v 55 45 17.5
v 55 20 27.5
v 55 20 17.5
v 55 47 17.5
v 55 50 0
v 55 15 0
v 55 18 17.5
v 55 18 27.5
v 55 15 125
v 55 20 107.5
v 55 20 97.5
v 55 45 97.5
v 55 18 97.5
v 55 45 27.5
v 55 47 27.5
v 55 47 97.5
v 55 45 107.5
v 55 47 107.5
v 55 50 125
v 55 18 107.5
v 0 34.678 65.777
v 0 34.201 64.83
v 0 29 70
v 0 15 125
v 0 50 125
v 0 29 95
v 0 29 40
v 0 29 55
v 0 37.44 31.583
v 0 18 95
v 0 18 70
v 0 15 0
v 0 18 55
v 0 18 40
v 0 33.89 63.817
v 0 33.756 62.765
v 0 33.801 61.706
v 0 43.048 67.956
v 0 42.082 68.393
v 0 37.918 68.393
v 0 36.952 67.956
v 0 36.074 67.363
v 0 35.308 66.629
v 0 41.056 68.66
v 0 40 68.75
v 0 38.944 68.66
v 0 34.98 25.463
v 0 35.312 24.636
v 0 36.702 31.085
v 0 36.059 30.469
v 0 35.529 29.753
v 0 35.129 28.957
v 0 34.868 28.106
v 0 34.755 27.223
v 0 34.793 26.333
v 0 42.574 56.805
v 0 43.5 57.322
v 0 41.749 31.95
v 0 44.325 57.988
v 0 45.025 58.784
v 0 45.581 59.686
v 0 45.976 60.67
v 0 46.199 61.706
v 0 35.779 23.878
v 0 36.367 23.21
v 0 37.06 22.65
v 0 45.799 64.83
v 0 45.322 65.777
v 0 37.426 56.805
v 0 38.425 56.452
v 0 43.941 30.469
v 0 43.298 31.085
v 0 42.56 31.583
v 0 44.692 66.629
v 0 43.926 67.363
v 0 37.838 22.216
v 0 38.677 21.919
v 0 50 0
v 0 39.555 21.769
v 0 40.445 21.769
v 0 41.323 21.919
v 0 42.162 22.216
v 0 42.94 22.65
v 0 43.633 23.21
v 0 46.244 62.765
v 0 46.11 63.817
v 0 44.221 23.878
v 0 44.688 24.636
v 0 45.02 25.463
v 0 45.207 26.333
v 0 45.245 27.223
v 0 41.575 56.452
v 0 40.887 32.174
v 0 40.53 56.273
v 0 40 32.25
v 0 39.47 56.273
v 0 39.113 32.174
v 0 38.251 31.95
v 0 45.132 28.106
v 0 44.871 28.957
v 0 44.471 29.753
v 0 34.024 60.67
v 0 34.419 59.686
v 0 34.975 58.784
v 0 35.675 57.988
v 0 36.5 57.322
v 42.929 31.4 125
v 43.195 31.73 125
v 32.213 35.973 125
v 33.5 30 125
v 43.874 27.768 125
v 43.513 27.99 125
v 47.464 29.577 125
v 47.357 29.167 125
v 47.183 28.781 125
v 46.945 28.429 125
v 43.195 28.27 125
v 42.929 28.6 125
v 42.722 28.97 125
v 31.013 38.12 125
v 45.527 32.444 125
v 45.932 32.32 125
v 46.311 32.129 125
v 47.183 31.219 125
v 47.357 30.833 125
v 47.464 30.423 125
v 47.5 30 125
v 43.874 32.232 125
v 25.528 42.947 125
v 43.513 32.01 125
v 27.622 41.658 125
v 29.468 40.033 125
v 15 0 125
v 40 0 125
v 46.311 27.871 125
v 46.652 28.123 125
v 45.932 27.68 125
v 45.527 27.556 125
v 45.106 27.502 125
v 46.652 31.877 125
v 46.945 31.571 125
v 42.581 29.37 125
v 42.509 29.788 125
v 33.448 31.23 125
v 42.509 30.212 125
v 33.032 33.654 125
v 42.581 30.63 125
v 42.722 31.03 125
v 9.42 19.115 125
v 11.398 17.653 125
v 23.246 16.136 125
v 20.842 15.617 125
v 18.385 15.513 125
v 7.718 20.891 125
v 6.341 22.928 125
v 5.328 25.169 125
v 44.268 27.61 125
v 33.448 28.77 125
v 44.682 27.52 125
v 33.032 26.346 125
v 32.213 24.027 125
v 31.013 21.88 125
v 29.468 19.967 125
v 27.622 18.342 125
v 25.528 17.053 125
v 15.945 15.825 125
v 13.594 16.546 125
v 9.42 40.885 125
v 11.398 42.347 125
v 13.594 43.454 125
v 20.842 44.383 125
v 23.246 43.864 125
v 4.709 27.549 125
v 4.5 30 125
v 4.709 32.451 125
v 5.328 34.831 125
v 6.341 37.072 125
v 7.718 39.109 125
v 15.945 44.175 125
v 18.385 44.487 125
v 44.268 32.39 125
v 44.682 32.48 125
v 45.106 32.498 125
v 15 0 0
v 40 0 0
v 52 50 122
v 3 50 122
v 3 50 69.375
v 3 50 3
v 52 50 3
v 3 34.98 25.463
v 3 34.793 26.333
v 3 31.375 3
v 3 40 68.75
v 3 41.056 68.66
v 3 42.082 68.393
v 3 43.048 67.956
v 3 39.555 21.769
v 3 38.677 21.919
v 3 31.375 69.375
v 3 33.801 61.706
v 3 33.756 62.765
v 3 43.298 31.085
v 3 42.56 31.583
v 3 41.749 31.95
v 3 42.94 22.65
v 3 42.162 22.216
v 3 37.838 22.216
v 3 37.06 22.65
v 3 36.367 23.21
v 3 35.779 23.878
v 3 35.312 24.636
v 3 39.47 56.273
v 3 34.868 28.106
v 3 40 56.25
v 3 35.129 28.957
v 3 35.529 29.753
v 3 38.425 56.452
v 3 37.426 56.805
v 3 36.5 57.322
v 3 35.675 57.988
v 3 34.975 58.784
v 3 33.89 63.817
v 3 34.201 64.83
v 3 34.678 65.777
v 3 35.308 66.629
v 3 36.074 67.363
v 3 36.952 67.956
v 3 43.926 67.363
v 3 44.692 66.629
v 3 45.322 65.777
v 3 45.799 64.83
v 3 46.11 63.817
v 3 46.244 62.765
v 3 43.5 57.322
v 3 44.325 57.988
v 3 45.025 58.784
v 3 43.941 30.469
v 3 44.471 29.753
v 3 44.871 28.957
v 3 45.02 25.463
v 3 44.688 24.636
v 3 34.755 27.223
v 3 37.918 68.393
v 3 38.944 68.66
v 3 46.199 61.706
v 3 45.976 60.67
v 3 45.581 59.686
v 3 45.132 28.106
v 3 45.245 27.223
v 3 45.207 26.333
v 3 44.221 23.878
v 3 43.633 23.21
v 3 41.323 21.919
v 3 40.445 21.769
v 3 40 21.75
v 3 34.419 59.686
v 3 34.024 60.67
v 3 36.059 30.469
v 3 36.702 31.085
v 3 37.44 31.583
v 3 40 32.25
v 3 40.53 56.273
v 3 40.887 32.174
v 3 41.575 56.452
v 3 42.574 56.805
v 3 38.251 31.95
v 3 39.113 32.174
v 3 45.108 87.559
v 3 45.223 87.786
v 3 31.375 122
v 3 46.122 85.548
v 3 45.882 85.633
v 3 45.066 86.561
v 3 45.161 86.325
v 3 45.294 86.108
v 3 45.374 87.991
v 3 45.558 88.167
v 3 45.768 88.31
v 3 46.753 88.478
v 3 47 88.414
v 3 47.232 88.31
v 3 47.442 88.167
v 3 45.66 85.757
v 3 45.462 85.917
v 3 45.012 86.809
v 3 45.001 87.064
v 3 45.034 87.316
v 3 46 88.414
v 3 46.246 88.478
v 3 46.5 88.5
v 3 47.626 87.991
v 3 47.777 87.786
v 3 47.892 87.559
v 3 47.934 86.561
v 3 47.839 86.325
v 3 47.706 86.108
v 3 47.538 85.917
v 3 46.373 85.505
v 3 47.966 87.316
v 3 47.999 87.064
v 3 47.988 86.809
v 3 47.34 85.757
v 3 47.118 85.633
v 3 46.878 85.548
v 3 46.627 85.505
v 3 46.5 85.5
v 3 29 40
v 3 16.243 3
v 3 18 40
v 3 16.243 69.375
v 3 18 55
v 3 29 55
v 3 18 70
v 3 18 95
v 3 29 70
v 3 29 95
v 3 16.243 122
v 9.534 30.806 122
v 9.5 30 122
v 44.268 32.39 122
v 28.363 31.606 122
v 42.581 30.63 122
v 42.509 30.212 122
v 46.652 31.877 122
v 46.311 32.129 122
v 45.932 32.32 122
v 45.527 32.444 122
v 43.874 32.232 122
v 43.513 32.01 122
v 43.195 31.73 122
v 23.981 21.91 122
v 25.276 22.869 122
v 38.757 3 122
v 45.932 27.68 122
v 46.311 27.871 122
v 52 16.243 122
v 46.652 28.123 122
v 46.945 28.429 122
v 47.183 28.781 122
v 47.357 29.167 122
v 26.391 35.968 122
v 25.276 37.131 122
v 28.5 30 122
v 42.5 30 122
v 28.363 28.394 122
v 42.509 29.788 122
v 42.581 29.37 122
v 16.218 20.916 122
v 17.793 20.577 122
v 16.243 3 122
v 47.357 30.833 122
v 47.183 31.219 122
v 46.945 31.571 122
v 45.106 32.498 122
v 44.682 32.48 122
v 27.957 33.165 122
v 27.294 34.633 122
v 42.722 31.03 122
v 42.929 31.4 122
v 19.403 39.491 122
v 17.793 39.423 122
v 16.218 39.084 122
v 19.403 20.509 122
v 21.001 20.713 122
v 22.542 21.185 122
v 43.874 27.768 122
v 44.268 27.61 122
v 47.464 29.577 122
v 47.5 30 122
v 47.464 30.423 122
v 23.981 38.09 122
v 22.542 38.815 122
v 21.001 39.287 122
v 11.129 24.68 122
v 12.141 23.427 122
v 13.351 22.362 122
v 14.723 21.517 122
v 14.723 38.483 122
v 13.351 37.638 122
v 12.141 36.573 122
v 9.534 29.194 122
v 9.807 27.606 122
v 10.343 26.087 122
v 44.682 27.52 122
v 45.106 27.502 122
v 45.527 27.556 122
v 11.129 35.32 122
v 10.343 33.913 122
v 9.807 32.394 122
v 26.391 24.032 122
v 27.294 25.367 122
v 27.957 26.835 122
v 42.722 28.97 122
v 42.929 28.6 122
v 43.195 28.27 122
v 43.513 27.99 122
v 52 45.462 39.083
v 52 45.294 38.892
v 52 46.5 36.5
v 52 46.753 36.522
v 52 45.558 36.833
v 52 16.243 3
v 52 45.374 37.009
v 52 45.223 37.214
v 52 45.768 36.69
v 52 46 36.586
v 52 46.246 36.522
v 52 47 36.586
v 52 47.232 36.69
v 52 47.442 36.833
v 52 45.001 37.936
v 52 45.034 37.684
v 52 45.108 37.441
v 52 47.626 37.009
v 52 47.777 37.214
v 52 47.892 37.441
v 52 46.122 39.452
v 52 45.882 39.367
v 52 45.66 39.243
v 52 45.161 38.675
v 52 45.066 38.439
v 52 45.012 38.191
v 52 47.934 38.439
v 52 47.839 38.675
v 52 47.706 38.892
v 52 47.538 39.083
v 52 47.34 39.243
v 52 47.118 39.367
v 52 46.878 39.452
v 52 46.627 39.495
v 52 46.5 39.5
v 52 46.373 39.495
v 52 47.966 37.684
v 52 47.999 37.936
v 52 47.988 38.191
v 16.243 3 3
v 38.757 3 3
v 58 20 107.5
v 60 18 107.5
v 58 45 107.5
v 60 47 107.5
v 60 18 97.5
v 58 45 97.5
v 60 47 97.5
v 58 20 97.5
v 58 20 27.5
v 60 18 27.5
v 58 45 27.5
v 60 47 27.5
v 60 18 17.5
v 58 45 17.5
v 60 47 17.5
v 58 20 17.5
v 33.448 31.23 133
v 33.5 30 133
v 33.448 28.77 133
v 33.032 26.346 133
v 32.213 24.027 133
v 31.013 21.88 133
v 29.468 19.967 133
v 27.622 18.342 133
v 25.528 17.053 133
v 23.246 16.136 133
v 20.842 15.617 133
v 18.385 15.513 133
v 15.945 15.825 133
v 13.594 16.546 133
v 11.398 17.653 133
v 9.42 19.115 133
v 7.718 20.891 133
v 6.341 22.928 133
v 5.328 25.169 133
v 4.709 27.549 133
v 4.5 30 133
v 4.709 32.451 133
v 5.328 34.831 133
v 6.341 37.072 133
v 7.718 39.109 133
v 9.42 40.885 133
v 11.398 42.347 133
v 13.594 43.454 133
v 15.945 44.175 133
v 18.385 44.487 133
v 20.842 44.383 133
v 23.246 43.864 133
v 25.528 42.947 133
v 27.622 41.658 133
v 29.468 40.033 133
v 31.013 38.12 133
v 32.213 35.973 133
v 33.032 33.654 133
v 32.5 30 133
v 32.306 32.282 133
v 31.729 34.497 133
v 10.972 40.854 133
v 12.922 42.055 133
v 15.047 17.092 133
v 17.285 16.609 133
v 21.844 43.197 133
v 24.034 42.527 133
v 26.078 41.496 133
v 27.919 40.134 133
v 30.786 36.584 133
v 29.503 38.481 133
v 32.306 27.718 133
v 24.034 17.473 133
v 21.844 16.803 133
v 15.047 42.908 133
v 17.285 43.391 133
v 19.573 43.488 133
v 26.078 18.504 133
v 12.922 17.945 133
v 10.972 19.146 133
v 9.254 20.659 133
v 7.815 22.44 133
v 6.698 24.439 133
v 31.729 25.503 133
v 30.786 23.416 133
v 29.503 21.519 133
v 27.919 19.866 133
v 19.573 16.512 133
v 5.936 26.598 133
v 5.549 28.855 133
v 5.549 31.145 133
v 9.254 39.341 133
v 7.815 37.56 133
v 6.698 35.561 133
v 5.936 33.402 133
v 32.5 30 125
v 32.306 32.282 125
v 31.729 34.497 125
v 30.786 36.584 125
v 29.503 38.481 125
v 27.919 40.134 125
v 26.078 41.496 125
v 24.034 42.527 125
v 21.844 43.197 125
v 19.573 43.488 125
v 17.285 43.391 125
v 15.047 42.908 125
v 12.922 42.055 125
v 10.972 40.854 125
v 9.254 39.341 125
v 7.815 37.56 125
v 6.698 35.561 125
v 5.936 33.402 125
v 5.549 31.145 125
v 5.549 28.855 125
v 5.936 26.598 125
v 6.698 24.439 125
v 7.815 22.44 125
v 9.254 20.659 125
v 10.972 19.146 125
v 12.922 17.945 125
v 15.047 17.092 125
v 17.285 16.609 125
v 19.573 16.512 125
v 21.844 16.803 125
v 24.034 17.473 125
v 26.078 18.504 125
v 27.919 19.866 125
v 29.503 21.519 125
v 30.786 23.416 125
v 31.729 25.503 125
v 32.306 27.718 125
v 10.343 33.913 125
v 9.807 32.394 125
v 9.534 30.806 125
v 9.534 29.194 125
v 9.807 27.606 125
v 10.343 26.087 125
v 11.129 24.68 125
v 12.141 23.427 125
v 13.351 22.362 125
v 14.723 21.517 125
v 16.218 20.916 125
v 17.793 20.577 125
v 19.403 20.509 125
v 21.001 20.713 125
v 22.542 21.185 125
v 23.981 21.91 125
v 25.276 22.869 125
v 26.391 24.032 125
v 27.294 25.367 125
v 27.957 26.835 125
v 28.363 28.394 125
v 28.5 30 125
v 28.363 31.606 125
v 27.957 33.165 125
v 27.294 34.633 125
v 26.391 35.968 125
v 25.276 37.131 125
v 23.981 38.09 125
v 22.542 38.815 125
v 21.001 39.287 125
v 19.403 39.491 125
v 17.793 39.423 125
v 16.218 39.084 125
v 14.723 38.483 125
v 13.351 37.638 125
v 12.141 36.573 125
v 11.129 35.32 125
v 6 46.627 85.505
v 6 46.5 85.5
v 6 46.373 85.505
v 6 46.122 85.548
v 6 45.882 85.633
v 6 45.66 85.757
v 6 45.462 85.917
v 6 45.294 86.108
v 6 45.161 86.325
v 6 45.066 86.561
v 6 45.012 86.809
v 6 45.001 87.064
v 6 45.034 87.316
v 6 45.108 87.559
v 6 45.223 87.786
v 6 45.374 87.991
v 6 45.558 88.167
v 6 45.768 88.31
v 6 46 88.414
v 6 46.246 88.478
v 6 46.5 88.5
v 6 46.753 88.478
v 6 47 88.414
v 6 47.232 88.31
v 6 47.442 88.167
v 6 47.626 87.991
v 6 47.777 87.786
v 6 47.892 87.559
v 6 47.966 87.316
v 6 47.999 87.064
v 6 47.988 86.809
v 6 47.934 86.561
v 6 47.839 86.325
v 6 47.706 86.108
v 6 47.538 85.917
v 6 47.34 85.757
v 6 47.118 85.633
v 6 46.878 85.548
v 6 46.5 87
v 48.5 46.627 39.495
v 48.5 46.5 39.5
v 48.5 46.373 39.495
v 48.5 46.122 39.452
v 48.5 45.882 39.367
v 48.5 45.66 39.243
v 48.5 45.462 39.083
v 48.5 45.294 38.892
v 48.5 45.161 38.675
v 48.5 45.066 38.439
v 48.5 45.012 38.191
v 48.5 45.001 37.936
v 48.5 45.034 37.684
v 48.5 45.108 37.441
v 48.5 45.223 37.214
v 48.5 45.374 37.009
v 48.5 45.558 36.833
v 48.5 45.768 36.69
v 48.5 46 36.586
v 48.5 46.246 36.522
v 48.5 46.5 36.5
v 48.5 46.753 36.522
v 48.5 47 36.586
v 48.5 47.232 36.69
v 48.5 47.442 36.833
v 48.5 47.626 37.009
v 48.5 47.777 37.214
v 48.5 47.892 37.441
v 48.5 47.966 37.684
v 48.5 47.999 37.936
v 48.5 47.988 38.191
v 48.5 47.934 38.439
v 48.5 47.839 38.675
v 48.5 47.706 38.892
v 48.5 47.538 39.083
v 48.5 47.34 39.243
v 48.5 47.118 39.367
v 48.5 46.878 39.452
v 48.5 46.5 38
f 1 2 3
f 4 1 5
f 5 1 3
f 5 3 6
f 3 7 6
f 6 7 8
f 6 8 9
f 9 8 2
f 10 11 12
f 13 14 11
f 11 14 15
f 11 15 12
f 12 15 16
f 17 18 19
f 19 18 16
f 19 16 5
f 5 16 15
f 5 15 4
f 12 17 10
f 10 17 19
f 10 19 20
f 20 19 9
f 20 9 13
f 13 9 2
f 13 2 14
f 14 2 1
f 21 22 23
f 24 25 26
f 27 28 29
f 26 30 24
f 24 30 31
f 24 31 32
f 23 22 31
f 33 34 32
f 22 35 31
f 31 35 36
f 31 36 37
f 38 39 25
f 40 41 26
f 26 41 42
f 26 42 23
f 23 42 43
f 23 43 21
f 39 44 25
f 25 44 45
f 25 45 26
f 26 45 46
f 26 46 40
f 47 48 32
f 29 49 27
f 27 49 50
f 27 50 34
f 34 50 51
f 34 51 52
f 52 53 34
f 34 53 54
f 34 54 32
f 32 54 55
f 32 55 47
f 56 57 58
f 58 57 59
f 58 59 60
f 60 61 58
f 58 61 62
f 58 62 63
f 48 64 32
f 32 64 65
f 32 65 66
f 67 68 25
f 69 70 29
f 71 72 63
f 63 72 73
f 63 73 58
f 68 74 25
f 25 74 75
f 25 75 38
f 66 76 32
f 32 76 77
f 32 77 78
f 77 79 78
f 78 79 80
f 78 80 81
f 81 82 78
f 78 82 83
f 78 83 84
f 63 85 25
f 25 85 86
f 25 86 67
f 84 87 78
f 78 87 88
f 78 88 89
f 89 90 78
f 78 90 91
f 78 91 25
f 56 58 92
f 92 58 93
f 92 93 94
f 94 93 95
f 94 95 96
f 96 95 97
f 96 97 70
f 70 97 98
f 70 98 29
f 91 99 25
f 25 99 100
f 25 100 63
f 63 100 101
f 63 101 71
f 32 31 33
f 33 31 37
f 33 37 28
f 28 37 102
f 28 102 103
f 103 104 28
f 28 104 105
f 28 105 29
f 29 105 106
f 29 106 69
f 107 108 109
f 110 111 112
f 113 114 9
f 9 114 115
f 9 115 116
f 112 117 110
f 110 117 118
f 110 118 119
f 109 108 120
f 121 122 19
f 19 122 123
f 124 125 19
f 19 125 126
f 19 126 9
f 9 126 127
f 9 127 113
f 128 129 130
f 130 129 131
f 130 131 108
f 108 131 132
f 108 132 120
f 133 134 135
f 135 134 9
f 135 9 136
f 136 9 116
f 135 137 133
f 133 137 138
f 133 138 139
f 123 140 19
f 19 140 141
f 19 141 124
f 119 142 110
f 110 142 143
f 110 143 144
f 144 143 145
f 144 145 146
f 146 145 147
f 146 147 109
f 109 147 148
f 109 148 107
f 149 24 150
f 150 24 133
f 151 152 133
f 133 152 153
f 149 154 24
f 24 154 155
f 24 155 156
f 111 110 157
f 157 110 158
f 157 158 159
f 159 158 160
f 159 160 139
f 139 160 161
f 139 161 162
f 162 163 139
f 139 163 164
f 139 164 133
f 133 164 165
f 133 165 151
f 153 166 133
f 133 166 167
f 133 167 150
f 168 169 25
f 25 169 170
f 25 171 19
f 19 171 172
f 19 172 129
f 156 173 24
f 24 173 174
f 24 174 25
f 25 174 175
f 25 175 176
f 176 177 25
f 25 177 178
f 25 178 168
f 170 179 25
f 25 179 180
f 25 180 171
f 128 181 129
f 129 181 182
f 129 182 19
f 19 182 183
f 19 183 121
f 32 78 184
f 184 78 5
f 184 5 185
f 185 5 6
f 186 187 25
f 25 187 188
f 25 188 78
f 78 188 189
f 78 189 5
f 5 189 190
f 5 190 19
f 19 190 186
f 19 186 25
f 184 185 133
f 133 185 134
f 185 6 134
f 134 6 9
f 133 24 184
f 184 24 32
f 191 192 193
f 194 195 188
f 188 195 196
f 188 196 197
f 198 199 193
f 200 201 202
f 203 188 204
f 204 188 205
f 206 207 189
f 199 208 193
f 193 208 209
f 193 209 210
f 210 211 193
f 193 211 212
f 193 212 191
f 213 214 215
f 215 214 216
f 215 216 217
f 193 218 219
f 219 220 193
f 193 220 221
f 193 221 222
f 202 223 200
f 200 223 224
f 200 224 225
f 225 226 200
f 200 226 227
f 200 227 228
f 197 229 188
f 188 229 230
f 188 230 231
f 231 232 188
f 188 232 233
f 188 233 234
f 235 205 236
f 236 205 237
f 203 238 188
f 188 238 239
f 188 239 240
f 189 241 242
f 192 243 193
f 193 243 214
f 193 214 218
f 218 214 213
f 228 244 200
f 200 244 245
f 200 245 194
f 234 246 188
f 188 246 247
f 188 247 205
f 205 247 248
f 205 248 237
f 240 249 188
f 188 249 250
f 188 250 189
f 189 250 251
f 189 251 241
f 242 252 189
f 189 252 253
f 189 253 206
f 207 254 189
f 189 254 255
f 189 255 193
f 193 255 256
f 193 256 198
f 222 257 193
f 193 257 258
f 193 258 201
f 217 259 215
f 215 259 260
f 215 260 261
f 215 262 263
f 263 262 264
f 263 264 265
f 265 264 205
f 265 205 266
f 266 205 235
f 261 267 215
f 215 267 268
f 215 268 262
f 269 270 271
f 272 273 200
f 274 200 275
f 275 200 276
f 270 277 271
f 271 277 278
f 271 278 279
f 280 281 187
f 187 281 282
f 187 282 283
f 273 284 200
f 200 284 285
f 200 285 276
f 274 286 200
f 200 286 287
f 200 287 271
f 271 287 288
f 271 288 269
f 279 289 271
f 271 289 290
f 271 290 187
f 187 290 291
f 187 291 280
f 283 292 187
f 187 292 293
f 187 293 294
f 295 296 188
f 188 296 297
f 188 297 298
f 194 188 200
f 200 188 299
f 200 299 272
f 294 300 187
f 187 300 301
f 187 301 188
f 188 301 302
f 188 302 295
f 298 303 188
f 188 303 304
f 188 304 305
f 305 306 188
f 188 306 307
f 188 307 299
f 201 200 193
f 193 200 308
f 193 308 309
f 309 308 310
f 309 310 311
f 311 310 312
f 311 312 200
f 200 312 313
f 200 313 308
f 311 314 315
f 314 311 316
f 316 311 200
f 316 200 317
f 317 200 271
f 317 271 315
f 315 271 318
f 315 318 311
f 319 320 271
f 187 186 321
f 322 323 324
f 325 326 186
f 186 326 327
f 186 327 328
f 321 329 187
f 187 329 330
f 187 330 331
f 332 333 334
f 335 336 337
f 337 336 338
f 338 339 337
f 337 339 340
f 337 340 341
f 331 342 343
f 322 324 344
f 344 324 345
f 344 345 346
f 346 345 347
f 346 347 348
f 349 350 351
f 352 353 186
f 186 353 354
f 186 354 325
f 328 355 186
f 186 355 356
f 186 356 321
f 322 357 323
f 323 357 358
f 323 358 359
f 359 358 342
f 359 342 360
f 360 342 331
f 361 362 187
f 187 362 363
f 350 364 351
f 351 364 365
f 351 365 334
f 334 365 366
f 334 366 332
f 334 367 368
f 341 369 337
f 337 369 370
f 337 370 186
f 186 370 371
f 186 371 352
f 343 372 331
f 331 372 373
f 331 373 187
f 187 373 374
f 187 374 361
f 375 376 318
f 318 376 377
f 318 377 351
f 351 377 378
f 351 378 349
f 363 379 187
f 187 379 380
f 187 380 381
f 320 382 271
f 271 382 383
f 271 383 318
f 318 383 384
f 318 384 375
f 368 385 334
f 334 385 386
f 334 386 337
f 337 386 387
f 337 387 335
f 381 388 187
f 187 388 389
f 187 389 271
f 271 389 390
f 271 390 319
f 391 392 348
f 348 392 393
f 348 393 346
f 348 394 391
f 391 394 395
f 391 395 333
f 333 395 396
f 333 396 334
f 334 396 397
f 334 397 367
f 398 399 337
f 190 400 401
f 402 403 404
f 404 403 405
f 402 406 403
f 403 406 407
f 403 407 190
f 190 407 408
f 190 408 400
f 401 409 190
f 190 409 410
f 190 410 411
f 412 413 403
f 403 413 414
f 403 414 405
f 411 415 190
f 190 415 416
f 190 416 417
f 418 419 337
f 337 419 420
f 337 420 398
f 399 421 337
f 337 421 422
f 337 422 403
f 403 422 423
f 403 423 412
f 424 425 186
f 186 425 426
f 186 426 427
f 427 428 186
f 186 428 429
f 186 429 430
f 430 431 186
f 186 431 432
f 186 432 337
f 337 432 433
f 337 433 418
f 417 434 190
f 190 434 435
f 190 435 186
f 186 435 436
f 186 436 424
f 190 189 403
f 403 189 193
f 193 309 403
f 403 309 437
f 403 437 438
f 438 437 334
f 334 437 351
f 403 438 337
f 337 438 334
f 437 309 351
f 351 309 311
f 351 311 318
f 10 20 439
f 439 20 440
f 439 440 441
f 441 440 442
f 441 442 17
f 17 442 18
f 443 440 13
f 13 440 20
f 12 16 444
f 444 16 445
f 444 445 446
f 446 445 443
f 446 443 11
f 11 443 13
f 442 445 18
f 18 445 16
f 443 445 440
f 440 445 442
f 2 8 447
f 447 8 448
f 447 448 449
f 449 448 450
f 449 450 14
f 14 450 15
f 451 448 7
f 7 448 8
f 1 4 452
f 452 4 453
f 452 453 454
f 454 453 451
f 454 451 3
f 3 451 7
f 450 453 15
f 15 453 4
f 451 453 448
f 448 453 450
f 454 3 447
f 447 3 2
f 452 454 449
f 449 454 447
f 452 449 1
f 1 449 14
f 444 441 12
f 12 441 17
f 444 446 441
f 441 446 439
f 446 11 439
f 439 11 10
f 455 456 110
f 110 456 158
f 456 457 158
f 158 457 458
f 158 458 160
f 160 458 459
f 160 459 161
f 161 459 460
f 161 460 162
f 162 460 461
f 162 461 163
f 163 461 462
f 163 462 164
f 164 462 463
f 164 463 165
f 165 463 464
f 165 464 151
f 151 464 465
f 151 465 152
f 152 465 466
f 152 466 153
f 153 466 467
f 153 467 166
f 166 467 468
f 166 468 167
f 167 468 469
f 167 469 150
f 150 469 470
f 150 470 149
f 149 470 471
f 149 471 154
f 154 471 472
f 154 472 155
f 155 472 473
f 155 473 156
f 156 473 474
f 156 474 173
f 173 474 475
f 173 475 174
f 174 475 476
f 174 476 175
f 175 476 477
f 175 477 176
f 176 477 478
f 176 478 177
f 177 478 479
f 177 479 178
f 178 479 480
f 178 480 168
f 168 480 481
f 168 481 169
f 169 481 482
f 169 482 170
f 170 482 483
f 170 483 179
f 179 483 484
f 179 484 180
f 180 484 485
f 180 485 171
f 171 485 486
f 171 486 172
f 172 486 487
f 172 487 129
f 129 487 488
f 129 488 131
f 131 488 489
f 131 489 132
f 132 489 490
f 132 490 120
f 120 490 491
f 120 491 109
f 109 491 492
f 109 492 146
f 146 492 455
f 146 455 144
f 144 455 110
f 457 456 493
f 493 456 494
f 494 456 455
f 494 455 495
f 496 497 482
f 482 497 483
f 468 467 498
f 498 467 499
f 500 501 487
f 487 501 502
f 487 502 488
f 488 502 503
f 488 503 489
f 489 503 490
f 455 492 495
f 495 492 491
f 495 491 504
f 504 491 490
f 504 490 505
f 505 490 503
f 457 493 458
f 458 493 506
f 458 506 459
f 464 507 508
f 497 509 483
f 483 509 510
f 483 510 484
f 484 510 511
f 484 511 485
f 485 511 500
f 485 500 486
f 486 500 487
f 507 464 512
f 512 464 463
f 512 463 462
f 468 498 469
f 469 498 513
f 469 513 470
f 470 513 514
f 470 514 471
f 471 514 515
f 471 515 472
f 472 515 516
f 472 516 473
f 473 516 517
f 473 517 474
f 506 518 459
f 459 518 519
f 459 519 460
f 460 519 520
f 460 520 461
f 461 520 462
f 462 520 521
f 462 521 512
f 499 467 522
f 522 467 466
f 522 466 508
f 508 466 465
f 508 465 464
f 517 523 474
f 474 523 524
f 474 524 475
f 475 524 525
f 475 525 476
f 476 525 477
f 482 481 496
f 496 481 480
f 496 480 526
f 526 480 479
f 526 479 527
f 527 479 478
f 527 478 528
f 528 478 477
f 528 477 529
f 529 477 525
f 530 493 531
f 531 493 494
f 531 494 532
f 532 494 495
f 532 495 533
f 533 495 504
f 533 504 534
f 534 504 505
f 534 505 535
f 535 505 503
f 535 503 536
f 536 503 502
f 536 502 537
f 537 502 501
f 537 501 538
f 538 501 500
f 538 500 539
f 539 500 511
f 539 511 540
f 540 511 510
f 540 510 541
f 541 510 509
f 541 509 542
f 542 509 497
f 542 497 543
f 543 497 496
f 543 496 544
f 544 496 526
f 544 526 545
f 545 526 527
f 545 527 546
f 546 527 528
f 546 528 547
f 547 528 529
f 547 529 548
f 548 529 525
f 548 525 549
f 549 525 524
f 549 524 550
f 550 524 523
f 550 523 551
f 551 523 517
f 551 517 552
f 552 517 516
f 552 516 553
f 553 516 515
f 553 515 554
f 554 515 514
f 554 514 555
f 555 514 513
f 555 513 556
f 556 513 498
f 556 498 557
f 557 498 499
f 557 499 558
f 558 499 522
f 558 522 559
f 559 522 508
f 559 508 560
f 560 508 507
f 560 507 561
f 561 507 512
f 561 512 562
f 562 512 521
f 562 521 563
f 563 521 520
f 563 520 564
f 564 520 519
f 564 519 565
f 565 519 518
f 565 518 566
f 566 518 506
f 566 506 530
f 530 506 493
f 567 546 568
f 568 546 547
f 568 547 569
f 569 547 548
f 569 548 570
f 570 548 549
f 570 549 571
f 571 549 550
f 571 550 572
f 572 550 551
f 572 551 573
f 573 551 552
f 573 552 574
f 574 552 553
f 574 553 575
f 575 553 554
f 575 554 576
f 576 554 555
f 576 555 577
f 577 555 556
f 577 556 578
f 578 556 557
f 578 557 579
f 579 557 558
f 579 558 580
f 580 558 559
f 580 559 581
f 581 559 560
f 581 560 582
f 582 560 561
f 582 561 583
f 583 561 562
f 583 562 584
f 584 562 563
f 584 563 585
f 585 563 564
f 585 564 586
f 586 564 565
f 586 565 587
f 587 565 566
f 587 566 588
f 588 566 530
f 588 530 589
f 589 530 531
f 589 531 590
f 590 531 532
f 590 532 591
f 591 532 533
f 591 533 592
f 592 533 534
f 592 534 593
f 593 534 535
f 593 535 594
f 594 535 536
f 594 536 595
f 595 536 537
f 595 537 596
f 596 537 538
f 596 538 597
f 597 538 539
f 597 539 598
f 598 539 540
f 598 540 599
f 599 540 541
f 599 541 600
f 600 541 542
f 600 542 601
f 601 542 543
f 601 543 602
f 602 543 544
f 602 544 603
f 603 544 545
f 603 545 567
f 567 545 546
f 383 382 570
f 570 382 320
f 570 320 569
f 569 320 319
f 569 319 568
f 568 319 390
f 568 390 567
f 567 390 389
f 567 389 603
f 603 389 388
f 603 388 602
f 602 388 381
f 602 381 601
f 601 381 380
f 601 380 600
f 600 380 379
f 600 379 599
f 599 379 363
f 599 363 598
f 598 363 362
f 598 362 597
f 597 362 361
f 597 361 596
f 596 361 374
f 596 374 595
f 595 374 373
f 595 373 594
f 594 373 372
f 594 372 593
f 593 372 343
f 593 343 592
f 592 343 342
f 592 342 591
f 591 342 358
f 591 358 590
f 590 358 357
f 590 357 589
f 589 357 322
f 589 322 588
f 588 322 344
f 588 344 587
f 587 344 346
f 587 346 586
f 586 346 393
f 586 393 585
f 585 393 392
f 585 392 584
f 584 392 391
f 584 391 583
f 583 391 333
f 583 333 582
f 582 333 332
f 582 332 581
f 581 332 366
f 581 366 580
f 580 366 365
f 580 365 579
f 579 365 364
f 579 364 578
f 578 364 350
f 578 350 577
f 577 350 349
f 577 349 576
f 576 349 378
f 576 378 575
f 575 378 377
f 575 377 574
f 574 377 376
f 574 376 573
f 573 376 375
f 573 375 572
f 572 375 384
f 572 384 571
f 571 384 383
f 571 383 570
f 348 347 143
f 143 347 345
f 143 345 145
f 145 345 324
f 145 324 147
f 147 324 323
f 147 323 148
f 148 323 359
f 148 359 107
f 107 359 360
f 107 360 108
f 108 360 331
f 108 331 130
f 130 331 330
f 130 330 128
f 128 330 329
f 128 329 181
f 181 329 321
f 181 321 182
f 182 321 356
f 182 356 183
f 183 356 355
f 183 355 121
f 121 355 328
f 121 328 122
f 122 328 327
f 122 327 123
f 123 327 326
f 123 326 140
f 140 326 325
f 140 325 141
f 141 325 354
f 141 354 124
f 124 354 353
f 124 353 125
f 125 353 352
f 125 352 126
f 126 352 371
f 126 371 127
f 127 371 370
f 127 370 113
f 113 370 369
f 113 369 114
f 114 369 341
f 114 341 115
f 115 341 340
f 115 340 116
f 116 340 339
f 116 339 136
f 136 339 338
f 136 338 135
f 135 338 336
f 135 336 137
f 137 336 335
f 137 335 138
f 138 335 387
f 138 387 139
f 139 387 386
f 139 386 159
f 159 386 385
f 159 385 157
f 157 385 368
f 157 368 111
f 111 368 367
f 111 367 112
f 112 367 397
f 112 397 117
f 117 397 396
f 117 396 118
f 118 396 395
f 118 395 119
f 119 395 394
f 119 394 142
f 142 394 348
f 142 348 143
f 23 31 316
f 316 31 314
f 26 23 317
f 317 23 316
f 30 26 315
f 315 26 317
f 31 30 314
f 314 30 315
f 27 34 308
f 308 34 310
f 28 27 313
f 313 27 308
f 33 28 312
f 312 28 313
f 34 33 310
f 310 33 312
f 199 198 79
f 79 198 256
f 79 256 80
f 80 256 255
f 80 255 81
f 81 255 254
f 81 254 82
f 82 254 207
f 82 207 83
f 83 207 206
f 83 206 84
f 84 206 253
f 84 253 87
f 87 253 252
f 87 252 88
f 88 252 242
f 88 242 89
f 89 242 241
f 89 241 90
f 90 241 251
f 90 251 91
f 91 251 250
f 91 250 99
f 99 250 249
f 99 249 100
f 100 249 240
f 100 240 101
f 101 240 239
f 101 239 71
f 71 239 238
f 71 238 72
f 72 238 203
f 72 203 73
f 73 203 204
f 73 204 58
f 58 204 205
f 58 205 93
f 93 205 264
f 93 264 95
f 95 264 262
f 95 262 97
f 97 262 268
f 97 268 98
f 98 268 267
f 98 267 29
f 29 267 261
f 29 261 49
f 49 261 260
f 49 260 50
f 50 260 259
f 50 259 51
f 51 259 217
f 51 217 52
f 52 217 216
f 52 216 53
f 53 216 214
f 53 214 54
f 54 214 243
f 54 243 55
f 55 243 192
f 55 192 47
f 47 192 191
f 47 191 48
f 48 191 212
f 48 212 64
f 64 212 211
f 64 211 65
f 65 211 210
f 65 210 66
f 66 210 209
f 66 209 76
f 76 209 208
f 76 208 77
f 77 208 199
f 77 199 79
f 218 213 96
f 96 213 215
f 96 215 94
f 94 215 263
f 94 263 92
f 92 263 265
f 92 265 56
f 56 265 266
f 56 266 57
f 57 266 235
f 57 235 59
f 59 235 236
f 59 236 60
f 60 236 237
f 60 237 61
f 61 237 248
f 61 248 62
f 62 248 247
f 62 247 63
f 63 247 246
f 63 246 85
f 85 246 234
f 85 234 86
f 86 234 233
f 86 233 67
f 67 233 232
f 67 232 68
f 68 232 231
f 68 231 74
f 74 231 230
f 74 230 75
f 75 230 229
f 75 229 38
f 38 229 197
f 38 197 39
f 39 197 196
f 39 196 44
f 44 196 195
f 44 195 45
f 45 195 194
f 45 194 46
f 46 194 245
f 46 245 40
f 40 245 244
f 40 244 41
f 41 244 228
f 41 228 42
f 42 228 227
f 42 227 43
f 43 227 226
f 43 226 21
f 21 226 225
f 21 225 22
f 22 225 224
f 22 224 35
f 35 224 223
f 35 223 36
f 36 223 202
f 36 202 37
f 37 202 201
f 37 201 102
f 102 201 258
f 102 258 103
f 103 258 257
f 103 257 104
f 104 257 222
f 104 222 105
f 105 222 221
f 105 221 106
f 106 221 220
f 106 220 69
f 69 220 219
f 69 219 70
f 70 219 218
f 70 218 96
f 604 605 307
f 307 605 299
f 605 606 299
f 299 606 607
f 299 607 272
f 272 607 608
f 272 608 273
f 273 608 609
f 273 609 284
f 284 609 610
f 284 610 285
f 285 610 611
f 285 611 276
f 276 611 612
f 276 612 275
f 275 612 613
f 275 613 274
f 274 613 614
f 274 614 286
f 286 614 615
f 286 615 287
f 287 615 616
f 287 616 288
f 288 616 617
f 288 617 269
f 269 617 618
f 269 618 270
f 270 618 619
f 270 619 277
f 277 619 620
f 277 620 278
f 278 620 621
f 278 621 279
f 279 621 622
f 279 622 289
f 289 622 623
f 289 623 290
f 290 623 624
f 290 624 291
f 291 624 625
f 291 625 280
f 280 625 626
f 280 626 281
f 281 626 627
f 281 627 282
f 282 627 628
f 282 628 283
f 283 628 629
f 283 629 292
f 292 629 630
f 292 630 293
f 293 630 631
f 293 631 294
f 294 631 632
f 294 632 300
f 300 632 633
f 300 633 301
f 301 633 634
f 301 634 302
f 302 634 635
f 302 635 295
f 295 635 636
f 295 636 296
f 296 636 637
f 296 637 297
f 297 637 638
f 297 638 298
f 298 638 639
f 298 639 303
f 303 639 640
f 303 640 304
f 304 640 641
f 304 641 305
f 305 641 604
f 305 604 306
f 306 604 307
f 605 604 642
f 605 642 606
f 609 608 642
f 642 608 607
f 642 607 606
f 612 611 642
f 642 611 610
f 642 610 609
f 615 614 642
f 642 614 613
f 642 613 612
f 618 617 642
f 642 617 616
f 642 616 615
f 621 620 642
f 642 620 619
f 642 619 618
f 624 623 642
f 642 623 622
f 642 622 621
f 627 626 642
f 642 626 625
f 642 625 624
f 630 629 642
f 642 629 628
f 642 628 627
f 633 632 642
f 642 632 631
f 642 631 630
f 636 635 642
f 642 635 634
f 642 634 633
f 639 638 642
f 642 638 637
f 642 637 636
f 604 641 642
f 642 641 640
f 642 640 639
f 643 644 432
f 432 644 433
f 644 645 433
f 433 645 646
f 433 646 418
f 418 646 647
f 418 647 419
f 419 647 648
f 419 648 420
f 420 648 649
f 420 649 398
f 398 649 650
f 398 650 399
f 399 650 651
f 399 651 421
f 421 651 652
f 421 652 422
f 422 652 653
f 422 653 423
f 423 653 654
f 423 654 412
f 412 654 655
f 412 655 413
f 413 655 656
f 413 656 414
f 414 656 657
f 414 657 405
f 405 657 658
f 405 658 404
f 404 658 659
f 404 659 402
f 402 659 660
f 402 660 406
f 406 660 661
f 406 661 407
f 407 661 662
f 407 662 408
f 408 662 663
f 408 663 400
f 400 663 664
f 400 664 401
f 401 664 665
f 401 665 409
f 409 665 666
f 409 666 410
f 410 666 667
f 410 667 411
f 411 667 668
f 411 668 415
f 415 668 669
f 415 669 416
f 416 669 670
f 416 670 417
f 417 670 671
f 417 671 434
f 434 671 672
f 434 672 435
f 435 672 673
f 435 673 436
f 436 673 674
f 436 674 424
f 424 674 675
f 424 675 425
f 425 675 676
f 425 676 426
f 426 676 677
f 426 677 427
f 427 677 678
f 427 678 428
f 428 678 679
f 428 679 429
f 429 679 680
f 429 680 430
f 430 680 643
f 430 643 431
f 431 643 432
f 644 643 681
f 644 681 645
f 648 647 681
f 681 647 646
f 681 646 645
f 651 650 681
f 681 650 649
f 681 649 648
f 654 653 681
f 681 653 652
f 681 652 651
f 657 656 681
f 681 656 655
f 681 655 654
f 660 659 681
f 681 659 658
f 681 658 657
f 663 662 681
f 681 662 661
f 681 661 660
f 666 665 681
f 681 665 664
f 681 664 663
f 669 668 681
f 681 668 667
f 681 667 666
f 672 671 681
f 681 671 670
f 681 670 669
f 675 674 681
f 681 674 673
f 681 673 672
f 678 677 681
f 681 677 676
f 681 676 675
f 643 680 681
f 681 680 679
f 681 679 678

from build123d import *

# Parameters (mm, degrees)
SKETCH1_W               = 55
SKETCH1_H               = 125
BOSS_EXTRUDE1_DEPTH     = 50
FILLET1_SIZE            = 15
CHAMFER1_SIZE           = 15
SHELL1_T                = -3
SKETCH11_W              = 10
SKETCH11_H              = 29
BOSS_EXTRUDE3_DEPTH     = 5
CUT_EXTRUDE2_DEPTH      = 133.876822659
CUT_EXTRUDE2_DEPTH_BACK = 133.876822659
SKETCH12_W              = 3
SKETCH12_H              = 25
SKETCH31_R              = 14.5
BOSS_EXTRUDE10_DEPTH    = 8
SKETCH32_R              = 13.5
CUT_EXTRUDE11_DEPTH     = 8
SKETCH33_R              = 9.5
CUT_EXTRUDE12_DEPTH     = 20
SKETCH34_R              = 2.5
CUT_EXTRUDE15_DEPTH     = 5
SKETCH39_W              = 15
SKETCH39_H              = 11
SKETCH39_W_2            = 25
CUT_EXTRUDE16_DEPTH     = 10
SKETCH41_R              = 6.25
SKETCH41_R_2            = 5.25
CUT_EXTRUDE17_DEPTH     = 10
SKETCH44_R              = 1.5
BOSS_EXTRUDE11_DEPTH    = 3
SKETCH45_R              = 1.5
BOSS_EXTRUDE12_DEPTH    = 3.5


with BuildPart() as part:
    # Sketch1 → Boss-Extrude1 (new body)
    with BuildSketch(Plane(origin=(0, 0, 0), x_dir=(1, 0, 0), z_dir=(0, 1, 0))):
        with Locations((27.5, -62.5)):
            Rectangle(SKETCH1_W, SKETCH1_H)
    extrude(amount=BOSS_EXTRUDE1_DEPTH)

    # Fillet1
    fillet1_edges = [part.edges().sort_by_distance(p)[0] for p in [
        (55, 0, 62.5),
    ]]
    chamfer(fillet1_edges, length=FILLET1_SIZE)

    # Chamfer1
    chamfer1_edges = [part.edges().sort_by_distance(p)[0] for p in [
        (0, 0, 62.5),
    ]]
    chamfer(chamfer1_edges, length=CHAMFER1_SIZE)

    # Shell1
    shell1_openings = [part.faces().sort_by_distance(p)[0] for p in [
        (27.5, 50, 62.5),
    ]]
    offset(amount=SHELL1_T, openings=shell1_openings, kind=Kind.INTERSECTION)

    # Sketch11 → Boss-Extrude3 (add)
    with BuildSketch(Plane(origin=(55, 0, 0), x_dir=(0, 0, -1), z_dir=(1, 0, 0))):
        with Locations((-102.5, 32.5)):
            Rectangle(SKETCH11_W, SKETCH11_H)
        with Locations((-22.5, 32.5)):
            Rectangle(SKETCH11_W, SKETCH11_H)
    extrude(amount=BOSS_EXTRUDE3_DEPTH)

    # Sketch12 → Cut-Extrude2 (cut, two sides: drawn at the far end of the back side and taken through both)
    with BuildSketch(Plane.XY.offset(107.5).offset(-CUT_EXTRUDE2_DEPTH_BACK)):
        with Locations((56.5, 32.5)):
            Rectangle(SKETCH12_W, SKETCH12_H)
    extrude(amount=CUT_EXTRUDE2_DEPTH + CUT_EXTRUDE2_DEPTH_BACK, mode=Mode.SUBTRACT)

    # Sketch31 → Boss-Extrude10 (add)
    with BuildSketch(Plane.XY.offset(125)):
        with Locations((19, 30)):
            Circle(SKETCH31_R)
    extrude(amount=BOSS_EXTRUDE10_DEPTH)

    # Sketch32 → Cut-Extrude11 (cut)
    with BuildSketch(Plane.XY.offset(133)):
        with Locations((19, 30)):
            Circle(SKETCH32_R)
    extrude(amount=-CUT_EXTRUDE11_DEPTH, mode=Mode.SUBTRACT)

    # Sketch33 → Cut-Extrude12 (cut)
    with BuildSketch(Plane.XY.offset(125)):
        with Locations((19, 30)):
            Circle(SKETCH33_R)
    extrude(amount=-CUT_EXTRUDE12_DEPTH, mode=Mode.SUBTRACT)

    # Sketch34 → Cut-Extrude15 (cut)
    with BuildSketch(Plane.XY.offset(125)):
        with Locations((45, 30)):
            Circle(SKETCH34_R)
    extrude(amount=-CUT_EXTRUDE15_DEPTH, mode=Mode.SUBTRACT)

    # Sketch39 → Cut-Extrude16 (cut)
    with BuildSketch(Plane.ZY):
        with Locations((47.5, 23.5)):
            Rectangle(SKETCH39_W, SKETCH39_H)
        with Locations((82.5, 23.5)):
            Rectangle(SKETCH39_W_2, SKETCH39_H)
    extrude(amount=-CUT_EXTRUDE16_DEPTH, mode=Mode.SUBTRACT)

    # Sketch41 → Cut-Extrude17 (cut)
    with BuildSketch(Plane.ZY):
        with Locations((62.5, 40)):
            Circle(SKETCH41_R)
        with Locations((27, 40)):
            Circle(SKETCH41_R_2)
    extrude(amount=-CUT_EXTRUDE17_DEPTH, mode=Mode.SUBTRACT)

    # Sketch44 → Boss-Extrude11 (add)
    with BuildSketch(Plane(origin=(3, 0, 0), x_dir=(0, 0, -1), z_dir=(1, 0, 0))):
        with Locations((-87, 46.5)):
            Circle(SKETCH44_R)
    extrude(amount=BOSS_EXTRUDE11_DEPTH)

    # Sketch45 → Boss-Extrude12 (add)
    with BuildSketch(Plane.ZY.offset(-52)):
        with Locations((38, 46.5)):
            Circle(SKETCH45_R)
    extrude(amount=BOSS_EXTRUDE12_DEPTH)


solid = part.part
